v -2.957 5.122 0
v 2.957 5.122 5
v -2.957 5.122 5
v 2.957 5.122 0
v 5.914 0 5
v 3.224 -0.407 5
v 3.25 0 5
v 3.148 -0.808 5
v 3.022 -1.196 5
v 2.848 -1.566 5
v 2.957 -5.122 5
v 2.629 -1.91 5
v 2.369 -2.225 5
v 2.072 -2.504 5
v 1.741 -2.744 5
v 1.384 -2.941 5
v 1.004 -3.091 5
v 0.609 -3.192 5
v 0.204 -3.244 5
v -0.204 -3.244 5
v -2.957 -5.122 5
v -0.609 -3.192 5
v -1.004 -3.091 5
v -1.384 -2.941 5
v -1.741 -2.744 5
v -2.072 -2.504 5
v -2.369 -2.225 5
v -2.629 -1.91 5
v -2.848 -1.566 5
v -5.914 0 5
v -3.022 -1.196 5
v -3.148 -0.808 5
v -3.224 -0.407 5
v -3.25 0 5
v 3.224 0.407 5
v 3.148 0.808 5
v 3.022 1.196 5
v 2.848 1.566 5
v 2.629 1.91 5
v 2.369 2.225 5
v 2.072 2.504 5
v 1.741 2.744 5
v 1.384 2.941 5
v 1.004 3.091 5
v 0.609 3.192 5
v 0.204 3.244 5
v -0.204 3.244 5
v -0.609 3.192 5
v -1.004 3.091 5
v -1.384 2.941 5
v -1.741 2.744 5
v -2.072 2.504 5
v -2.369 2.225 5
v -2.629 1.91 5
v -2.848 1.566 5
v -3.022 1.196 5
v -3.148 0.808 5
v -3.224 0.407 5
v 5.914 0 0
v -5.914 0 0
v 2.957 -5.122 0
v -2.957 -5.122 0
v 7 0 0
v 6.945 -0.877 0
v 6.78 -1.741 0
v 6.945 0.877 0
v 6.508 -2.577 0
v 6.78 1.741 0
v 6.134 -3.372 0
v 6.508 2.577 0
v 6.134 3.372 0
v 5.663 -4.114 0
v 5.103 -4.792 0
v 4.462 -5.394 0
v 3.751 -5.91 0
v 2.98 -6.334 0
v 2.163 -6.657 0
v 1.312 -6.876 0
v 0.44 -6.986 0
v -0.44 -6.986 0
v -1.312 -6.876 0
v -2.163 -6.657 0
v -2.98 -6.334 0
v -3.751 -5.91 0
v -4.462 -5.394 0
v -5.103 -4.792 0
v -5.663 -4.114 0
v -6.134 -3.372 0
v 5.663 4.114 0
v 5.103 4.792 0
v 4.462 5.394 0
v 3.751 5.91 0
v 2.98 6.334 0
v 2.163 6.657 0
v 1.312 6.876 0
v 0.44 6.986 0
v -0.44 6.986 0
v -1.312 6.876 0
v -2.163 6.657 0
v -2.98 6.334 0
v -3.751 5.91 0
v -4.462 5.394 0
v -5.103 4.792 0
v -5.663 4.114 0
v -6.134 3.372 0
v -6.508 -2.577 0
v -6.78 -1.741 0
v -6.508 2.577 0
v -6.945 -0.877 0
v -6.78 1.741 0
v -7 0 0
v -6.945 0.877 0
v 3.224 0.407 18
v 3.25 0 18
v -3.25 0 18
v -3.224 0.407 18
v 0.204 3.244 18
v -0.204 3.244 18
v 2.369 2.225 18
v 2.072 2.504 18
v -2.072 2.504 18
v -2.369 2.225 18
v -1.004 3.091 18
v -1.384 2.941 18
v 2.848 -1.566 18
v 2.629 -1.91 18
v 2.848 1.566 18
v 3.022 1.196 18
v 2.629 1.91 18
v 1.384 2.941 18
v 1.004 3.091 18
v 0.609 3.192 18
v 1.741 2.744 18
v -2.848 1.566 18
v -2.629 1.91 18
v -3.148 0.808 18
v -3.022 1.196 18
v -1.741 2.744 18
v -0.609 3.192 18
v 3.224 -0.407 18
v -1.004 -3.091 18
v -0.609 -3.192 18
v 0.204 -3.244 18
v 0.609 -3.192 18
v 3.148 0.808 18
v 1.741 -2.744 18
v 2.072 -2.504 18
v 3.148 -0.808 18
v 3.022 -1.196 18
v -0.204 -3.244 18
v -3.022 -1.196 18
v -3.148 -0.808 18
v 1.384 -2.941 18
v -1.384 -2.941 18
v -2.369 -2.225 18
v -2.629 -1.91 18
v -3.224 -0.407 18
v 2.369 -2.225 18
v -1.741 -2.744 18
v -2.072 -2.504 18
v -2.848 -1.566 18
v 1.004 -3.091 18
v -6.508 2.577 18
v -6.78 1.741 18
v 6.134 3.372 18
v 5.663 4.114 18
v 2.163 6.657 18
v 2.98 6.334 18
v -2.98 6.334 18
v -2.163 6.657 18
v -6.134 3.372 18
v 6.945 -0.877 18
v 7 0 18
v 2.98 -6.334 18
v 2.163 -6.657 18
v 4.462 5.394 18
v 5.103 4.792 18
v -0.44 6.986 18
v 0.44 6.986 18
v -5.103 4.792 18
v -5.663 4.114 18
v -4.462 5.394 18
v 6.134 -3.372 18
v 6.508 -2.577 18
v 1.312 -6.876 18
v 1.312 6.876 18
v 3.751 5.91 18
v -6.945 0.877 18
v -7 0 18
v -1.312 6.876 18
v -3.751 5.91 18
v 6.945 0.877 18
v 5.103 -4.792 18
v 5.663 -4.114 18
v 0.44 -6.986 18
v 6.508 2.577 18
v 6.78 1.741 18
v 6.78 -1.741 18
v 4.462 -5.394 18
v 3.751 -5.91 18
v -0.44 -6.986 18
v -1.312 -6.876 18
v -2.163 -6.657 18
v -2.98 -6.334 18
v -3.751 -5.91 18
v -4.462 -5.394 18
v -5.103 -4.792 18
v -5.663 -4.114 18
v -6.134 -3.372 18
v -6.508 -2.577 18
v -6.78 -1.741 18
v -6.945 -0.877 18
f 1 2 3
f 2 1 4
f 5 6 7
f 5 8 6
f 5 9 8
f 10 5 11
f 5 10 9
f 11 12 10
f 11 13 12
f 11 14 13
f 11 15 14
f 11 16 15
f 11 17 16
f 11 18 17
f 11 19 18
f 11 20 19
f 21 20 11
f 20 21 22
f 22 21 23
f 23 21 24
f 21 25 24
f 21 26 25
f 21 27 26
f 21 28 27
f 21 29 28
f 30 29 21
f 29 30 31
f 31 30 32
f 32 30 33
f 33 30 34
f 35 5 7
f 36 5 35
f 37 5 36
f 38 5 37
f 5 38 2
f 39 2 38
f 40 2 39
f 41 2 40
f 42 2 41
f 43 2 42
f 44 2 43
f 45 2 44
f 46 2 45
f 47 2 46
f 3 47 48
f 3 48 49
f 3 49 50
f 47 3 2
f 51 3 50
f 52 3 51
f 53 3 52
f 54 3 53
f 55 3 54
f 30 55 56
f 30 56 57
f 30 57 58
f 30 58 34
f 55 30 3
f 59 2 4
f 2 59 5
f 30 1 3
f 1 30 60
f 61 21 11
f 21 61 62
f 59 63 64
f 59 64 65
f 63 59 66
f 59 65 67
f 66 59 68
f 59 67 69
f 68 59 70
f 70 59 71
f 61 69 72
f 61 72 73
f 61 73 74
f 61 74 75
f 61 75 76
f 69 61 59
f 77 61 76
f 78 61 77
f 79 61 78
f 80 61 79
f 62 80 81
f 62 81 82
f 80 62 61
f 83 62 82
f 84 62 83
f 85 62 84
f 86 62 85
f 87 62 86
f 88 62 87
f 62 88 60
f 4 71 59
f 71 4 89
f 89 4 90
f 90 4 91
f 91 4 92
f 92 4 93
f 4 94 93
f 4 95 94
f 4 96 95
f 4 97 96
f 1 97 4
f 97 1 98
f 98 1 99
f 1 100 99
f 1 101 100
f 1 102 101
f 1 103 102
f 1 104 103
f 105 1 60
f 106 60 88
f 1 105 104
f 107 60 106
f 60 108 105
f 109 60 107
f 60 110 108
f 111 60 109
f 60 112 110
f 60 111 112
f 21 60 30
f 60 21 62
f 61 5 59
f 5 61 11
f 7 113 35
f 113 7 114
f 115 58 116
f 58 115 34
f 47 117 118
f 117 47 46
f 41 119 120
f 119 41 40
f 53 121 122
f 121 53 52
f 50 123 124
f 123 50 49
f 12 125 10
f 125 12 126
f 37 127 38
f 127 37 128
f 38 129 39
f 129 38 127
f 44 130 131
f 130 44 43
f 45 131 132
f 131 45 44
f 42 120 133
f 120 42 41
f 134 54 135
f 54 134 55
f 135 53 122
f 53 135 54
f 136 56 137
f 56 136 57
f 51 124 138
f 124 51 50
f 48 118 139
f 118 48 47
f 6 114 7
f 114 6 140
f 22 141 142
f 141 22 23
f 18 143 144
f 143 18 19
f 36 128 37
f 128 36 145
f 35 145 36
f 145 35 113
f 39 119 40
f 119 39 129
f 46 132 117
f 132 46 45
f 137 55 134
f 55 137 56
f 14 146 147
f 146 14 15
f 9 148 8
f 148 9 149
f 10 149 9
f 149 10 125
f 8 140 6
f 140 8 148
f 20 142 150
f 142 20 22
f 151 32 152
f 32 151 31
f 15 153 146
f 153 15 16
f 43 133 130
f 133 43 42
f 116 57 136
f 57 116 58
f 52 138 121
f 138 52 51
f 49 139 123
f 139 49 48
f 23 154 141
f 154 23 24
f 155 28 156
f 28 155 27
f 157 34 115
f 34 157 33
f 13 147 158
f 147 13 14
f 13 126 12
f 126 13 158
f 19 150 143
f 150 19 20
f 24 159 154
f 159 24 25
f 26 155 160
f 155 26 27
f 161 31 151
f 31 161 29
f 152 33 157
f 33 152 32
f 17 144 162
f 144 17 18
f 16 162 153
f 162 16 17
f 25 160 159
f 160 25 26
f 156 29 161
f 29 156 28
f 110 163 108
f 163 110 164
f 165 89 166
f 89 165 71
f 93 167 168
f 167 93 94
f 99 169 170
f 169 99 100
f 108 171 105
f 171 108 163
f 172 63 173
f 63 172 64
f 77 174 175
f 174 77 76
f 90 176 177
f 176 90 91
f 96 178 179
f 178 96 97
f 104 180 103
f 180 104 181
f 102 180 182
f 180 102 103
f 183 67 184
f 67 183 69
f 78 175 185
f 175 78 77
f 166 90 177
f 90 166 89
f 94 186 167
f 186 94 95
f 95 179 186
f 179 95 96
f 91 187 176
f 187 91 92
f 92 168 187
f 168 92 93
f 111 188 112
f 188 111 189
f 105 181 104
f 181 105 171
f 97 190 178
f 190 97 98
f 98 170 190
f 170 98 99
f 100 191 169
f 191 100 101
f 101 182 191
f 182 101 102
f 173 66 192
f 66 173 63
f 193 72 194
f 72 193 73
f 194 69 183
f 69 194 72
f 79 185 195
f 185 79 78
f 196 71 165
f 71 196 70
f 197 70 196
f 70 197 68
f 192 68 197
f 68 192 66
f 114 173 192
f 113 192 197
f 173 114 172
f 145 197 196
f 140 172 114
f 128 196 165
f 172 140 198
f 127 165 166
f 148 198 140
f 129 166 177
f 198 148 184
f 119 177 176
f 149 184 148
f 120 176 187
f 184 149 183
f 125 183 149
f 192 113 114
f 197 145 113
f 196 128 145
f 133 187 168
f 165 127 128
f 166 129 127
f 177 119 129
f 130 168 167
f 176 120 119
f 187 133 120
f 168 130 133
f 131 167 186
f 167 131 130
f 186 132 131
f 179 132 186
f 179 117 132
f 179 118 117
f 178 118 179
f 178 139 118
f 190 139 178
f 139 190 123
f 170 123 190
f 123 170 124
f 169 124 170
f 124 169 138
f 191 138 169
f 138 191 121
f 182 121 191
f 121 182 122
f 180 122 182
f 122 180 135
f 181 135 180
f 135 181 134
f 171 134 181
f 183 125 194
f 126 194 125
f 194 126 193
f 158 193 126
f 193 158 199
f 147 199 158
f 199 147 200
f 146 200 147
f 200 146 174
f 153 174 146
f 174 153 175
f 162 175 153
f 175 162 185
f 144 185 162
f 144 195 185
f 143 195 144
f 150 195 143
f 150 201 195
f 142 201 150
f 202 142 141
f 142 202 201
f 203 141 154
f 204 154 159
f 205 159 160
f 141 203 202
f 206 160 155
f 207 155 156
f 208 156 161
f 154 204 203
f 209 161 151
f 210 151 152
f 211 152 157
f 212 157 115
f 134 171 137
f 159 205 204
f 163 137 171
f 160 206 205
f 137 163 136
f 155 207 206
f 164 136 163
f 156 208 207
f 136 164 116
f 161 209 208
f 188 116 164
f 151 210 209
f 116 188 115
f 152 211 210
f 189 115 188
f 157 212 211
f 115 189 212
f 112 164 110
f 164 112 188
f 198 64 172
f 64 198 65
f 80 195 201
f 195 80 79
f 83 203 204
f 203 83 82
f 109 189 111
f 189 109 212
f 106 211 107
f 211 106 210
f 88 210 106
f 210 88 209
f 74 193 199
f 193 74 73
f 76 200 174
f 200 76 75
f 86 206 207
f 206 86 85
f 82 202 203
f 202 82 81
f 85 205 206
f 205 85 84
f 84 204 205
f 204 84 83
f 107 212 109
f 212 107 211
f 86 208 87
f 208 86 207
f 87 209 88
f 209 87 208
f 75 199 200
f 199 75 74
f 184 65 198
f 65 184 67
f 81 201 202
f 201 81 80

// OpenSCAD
$fn = 50;


difference() {
	union() {
		cylinder(h = 18, r = 7.0000000000);
	}
	union() {
		translate(v = [0, 0, 0]) {
			rotate(a = [0, 0, 0]) {
				difference() {
					union() {
						#linear_extrude(height = 5) {
							polygon(points = [[5.9142500000, 0.0000000000], [2.9571250000, 5.1218907443], [-2.9571250000, 5.1218907443], [-5.9142500000, 0.0000000000], [-2.9571250000, -5.1218907443], [2.9571250000, -5.1218907443]]);
						}
					}
					union();
				}
			}
		}
		translate(v = [0, 0, -100]) {
			cylinder(h = 200, r = 3.2500000000);
		}
		translate(v = [0, 0, -100]) {
			cylinder(h = 200, r = 1.8000000000);
		}
	}
}
